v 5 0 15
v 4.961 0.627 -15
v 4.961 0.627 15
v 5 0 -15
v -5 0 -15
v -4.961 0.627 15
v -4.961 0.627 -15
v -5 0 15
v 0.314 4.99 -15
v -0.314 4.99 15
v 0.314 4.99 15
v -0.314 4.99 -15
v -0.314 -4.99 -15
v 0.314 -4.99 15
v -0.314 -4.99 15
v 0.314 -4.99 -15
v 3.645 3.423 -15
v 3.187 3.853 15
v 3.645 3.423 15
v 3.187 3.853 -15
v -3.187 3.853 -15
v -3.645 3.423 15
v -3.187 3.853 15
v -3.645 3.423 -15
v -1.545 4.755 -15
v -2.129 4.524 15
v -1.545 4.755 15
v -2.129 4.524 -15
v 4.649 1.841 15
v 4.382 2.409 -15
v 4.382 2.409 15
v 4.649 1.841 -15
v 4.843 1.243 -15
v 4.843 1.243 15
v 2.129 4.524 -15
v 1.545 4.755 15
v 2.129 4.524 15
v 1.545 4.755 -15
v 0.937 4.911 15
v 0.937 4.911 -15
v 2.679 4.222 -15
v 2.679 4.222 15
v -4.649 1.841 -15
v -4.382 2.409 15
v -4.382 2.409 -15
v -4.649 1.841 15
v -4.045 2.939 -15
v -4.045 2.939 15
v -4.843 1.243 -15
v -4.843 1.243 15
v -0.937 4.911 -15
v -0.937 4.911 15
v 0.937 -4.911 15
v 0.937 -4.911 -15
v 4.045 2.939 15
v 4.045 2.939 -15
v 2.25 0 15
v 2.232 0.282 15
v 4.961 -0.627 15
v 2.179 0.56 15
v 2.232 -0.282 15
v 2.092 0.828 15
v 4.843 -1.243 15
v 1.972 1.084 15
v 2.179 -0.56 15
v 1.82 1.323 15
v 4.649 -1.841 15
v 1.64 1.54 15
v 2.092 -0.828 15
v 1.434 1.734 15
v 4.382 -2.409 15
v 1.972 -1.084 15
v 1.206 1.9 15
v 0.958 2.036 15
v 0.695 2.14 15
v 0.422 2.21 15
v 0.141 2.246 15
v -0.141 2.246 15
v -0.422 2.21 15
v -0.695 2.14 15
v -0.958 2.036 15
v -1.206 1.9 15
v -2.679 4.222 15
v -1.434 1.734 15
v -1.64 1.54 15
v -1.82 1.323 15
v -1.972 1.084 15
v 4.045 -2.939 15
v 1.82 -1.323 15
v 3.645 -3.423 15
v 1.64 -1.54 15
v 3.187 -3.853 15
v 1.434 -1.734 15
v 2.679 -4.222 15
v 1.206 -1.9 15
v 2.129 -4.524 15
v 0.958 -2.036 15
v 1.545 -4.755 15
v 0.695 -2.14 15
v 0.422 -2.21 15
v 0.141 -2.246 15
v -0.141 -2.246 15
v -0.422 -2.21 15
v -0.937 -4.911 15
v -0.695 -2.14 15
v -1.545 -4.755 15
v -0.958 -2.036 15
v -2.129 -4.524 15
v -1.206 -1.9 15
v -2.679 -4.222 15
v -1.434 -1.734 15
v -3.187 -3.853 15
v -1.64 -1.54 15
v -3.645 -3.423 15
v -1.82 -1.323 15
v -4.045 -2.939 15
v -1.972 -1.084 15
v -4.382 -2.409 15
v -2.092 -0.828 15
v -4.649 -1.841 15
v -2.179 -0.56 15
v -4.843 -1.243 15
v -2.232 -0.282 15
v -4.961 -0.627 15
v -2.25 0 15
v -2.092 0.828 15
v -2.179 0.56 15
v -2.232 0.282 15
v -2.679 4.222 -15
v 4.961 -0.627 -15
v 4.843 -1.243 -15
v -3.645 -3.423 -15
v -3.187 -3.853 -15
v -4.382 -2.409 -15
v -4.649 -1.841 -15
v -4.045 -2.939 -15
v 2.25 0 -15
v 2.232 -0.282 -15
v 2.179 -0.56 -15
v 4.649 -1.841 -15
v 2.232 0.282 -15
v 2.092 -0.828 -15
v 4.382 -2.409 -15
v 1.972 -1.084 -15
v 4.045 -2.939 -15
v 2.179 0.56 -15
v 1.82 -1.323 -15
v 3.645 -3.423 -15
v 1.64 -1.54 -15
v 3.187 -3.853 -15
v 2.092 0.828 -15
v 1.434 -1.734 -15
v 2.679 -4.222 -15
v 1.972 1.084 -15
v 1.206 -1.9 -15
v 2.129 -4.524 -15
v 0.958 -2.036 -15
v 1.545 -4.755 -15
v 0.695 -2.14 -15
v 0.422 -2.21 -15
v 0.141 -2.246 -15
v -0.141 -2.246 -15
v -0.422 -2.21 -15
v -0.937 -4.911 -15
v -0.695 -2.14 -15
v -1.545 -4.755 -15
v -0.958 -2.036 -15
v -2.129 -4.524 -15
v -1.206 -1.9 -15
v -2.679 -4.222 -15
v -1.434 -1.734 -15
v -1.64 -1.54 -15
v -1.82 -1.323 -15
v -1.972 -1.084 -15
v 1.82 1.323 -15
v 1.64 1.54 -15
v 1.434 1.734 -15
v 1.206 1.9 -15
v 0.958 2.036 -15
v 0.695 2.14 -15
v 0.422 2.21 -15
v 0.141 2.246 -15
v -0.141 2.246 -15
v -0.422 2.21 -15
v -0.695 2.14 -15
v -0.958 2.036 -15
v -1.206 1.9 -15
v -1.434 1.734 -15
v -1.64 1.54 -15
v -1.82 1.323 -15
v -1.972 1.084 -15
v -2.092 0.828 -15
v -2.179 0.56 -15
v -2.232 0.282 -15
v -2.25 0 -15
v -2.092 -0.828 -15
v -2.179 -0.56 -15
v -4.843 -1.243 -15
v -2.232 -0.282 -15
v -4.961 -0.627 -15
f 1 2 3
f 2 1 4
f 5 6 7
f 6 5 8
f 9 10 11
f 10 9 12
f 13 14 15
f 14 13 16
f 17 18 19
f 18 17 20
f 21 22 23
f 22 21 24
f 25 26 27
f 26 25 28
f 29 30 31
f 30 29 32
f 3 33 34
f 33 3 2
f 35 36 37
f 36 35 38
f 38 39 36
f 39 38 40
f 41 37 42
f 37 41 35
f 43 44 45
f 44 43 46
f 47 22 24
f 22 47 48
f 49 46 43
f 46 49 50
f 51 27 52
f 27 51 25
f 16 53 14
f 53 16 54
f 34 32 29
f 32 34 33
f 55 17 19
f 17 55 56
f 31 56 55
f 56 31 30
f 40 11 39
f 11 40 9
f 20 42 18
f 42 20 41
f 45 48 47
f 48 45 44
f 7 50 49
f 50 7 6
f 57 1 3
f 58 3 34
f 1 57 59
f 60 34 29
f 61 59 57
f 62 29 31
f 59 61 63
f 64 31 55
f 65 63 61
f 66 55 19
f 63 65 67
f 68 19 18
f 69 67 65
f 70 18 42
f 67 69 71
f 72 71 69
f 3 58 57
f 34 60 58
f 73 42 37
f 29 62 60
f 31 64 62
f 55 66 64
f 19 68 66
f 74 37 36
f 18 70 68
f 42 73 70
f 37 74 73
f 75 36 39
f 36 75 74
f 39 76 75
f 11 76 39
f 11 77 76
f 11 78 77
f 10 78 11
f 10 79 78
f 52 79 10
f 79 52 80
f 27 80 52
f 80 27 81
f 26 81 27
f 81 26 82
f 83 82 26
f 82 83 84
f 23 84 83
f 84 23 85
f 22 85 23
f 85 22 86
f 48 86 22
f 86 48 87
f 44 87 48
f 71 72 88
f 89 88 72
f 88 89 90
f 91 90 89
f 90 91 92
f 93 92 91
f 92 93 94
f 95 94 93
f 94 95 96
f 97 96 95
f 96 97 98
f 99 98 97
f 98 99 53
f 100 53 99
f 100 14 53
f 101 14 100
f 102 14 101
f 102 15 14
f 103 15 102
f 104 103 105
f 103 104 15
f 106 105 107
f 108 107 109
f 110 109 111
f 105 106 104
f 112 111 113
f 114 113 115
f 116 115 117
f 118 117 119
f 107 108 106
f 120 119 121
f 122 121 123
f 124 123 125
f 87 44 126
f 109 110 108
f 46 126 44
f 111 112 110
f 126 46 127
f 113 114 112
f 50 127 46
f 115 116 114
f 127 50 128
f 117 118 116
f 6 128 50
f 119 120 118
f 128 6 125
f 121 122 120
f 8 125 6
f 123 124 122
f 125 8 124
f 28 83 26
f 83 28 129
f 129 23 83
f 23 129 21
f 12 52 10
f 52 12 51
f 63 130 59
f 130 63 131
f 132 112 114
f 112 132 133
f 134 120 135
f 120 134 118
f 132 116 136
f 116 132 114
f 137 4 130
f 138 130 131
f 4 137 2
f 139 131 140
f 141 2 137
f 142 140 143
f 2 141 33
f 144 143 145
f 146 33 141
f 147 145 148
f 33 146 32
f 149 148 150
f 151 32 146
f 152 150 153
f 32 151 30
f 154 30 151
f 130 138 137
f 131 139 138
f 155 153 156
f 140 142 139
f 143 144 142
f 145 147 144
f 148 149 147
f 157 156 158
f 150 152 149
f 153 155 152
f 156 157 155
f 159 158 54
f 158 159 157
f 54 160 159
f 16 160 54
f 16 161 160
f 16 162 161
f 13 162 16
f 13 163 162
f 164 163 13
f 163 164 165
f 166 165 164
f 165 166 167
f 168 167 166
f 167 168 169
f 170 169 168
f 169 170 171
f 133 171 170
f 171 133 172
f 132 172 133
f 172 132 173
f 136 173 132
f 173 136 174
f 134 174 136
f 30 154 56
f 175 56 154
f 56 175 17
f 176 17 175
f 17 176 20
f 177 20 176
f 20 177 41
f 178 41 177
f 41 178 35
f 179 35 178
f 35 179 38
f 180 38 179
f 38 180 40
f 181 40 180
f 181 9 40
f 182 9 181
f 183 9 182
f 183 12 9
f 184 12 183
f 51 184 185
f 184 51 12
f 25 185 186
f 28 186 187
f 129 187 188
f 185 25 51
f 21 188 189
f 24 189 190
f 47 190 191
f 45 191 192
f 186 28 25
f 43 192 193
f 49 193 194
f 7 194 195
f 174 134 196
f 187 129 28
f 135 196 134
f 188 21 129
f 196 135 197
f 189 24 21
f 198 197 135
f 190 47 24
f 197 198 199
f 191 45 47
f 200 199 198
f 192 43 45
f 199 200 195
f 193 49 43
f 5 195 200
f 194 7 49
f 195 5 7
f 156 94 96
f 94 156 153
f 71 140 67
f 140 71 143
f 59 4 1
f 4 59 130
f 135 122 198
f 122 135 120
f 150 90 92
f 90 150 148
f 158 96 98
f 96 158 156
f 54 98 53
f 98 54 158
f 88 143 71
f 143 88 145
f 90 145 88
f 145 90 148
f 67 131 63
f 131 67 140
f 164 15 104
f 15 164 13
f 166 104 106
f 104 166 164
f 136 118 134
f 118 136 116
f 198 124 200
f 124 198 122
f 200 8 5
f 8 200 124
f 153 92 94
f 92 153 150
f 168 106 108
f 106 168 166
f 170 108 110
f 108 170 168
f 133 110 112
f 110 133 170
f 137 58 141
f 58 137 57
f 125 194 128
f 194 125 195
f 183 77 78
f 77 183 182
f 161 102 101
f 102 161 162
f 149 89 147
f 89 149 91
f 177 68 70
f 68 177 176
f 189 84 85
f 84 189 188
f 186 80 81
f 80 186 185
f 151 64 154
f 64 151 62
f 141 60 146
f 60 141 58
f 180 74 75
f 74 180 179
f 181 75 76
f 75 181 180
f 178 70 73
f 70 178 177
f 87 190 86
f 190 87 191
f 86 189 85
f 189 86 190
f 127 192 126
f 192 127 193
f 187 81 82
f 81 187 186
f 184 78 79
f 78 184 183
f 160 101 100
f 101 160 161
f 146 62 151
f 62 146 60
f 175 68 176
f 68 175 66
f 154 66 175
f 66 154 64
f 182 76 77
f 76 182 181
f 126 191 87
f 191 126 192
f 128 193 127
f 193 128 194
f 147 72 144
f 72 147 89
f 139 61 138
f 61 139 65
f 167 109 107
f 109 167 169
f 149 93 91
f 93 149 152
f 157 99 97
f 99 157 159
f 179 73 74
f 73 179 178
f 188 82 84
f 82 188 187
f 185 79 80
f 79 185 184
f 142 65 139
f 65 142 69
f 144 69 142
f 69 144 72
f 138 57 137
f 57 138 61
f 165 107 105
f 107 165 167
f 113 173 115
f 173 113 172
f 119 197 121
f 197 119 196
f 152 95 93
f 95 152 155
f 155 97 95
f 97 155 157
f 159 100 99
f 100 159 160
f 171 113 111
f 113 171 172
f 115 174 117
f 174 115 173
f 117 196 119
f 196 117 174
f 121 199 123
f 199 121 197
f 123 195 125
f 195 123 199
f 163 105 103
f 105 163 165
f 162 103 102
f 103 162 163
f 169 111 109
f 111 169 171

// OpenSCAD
$fn = 50;


difference() {
	union() {
		translate(v = [0, 0, -15.0000000000]) {
			cylinder(h = 30, r = 5.0000000000);
		}
	}
	union() {
		translate(v = [0, 0, -100.0000000000]) {
			cylinder(h = 200, r = 2.2500000000);
		}
	}
}
